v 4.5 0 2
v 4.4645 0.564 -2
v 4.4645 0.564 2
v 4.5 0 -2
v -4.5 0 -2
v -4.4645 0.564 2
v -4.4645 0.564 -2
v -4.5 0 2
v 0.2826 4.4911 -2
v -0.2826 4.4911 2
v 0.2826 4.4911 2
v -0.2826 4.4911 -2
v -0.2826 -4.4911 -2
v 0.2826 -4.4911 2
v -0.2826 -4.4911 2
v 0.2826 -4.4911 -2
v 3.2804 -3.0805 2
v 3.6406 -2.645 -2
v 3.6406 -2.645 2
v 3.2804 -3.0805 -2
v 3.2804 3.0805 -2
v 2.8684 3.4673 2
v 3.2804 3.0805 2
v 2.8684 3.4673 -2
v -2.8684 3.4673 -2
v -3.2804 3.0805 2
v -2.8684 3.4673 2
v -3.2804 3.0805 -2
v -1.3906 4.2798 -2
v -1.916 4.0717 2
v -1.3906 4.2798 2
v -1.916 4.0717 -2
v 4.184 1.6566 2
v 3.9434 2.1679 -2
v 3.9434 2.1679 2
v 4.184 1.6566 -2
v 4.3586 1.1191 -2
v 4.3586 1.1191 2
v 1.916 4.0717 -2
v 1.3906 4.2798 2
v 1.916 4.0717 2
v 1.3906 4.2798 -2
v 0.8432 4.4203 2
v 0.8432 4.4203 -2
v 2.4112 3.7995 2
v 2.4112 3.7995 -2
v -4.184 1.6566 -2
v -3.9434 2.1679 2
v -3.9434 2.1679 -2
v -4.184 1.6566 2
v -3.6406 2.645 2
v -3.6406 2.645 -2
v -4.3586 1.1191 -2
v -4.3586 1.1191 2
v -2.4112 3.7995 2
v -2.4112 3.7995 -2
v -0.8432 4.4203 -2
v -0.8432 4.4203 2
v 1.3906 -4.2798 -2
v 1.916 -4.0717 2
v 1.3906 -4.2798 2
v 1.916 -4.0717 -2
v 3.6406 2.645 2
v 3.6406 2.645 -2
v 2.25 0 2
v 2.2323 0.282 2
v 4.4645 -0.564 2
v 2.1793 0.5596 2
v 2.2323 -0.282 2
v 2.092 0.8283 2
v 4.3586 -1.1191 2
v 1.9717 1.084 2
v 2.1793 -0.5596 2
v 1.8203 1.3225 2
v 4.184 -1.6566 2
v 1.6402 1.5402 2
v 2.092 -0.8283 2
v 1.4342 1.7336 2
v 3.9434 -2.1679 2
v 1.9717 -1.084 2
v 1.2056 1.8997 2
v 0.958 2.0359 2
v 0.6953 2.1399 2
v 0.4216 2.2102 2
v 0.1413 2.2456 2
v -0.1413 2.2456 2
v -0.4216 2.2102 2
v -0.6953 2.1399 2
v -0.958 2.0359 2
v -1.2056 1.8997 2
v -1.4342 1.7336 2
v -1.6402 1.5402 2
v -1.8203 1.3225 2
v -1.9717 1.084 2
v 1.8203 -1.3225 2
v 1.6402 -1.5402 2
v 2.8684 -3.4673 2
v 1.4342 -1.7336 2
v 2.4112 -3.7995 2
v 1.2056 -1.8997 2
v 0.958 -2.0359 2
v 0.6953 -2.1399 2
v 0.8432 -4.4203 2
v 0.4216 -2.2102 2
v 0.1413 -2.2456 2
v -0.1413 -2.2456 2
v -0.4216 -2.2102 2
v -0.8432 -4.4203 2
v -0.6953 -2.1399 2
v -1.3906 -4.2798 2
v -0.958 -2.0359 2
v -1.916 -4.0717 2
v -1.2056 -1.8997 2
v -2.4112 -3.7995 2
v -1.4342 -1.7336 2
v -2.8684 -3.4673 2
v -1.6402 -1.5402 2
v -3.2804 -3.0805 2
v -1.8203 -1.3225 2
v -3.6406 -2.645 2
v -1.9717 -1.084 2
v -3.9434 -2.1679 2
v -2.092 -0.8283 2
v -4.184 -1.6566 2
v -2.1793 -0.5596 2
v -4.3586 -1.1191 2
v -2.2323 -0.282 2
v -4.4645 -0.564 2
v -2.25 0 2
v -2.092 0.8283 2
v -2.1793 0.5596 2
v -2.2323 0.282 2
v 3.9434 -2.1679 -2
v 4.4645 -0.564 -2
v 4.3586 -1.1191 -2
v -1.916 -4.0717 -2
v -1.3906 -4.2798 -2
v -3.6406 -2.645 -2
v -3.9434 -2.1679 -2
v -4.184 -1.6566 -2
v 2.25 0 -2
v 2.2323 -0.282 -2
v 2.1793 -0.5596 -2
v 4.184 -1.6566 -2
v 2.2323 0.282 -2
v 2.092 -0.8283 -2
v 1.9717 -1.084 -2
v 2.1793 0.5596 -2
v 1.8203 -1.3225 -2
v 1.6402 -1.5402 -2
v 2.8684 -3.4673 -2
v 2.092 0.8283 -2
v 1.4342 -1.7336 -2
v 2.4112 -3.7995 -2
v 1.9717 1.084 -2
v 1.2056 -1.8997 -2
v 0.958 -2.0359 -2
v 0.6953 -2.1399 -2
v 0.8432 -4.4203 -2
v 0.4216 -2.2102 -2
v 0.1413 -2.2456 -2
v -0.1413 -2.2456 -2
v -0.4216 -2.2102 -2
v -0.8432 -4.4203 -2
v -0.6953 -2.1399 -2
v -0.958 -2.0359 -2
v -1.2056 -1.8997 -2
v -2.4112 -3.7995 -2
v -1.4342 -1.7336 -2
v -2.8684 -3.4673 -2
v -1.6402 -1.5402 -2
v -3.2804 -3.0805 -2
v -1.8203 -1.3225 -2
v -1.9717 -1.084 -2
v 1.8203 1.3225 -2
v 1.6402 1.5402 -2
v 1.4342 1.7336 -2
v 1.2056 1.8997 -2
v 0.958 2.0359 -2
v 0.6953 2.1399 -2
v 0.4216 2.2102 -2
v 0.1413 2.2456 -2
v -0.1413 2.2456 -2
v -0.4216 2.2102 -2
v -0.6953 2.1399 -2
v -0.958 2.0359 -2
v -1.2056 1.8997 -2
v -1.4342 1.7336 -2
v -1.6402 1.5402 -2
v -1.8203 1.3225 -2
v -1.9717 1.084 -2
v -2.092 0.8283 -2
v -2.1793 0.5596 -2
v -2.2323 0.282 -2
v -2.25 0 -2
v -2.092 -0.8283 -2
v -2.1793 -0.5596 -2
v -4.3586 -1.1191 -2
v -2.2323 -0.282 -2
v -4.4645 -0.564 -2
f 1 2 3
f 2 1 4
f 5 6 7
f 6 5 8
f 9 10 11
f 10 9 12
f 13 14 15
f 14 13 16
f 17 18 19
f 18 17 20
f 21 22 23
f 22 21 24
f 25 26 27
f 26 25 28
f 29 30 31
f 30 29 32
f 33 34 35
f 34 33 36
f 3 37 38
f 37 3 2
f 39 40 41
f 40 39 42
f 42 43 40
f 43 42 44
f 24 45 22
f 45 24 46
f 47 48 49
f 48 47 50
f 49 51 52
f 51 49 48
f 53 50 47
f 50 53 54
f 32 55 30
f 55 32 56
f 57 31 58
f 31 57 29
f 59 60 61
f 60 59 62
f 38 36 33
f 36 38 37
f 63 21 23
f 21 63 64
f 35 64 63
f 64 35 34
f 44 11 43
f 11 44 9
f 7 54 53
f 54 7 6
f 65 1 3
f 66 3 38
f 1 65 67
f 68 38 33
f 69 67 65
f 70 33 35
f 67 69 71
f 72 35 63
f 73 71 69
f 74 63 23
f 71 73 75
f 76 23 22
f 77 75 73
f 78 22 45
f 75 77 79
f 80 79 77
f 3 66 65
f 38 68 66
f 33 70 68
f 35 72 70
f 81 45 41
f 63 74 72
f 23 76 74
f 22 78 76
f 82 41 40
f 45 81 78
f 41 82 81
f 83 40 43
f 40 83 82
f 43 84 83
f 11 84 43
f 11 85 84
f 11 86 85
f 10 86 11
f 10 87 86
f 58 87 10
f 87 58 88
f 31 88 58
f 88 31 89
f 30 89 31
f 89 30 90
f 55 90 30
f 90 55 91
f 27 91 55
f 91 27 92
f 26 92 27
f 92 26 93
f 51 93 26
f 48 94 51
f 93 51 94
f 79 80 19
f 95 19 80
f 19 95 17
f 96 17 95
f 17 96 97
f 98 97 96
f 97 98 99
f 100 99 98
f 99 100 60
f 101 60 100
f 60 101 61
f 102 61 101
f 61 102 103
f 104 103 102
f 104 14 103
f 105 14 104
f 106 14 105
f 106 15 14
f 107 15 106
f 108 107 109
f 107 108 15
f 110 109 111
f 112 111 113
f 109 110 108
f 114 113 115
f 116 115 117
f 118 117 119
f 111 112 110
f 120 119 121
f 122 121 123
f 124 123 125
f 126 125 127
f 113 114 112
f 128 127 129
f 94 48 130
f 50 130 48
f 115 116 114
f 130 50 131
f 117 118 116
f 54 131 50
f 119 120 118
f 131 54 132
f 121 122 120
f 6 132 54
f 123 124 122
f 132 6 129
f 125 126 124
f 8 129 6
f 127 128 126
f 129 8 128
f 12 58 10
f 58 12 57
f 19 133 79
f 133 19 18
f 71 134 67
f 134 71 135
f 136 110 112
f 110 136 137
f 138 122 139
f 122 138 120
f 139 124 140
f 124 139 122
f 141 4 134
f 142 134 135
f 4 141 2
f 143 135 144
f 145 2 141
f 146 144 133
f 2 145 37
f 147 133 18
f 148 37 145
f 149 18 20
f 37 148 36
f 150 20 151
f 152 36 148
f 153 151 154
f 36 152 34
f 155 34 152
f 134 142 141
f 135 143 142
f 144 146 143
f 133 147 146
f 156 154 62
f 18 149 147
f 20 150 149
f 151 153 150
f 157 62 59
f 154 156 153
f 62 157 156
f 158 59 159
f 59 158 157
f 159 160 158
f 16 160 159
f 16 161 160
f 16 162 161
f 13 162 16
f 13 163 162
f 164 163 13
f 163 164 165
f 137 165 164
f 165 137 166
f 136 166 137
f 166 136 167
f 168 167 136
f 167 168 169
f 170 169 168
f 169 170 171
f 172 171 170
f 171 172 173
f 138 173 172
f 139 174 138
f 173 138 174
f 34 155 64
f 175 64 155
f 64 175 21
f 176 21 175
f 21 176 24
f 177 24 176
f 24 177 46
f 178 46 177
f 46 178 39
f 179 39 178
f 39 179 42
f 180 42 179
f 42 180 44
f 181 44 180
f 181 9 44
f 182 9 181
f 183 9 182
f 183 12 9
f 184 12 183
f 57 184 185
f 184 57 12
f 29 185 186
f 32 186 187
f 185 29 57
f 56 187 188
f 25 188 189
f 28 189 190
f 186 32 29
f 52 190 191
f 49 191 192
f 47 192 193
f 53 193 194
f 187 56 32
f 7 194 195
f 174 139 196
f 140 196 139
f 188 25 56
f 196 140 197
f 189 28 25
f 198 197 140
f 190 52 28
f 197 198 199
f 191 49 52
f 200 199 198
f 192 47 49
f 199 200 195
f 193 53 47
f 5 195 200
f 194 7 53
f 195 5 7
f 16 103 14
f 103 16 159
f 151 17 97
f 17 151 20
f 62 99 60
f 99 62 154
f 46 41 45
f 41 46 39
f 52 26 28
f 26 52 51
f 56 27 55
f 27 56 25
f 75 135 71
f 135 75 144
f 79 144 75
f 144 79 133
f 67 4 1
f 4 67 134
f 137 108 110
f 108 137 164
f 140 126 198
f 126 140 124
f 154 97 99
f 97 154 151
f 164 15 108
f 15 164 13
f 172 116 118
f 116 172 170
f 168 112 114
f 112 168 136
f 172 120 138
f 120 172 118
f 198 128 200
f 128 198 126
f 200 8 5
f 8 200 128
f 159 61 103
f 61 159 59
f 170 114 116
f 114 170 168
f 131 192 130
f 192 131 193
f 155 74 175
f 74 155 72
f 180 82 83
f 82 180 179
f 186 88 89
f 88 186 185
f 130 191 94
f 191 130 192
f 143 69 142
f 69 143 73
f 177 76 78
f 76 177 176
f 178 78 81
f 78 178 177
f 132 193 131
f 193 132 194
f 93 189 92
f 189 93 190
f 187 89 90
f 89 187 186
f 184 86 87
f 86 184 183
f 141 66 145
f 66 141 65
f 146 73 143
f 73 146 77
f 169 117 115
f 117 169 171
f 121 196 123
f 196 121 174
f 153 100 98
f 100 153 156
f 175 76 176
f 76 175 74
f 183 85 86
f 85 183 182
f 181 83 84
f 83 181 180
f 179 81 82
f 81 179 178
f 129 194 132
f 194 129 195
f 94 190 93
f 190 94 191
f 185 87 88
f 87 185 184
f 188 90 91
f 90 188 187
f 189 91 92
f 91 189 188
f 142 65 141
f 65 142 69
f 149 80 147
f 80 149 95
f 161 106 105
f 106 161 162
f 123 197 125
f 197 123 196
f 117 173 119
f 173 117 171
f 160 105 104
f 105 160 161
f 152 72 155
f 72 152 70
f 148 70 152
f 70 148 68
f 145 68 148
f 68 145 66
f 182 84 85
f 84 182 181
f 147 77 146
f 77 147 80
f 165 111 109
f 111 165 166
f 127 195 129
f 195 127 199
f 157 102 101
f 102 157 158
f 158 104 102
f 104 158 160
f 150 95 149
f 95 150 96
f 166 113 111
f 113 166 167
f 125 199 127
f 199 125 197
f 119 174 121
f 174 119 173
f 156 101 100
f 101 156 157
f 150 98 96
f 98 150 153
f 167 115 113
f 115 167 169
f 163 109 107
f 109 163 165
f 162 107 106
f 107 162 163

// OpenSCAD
$fn = 50;


difference() {
	union() {
		translate(v = [0, 0, -2.0000000000]) {
			cylinder(h = 4, r = 4.5000000000);
		}
	}
	union() {
		translate(v = [0, 0, -100.0000000000]) {
			cylinder(h = 200, r = 2.2500000000);
		}
	}
}
